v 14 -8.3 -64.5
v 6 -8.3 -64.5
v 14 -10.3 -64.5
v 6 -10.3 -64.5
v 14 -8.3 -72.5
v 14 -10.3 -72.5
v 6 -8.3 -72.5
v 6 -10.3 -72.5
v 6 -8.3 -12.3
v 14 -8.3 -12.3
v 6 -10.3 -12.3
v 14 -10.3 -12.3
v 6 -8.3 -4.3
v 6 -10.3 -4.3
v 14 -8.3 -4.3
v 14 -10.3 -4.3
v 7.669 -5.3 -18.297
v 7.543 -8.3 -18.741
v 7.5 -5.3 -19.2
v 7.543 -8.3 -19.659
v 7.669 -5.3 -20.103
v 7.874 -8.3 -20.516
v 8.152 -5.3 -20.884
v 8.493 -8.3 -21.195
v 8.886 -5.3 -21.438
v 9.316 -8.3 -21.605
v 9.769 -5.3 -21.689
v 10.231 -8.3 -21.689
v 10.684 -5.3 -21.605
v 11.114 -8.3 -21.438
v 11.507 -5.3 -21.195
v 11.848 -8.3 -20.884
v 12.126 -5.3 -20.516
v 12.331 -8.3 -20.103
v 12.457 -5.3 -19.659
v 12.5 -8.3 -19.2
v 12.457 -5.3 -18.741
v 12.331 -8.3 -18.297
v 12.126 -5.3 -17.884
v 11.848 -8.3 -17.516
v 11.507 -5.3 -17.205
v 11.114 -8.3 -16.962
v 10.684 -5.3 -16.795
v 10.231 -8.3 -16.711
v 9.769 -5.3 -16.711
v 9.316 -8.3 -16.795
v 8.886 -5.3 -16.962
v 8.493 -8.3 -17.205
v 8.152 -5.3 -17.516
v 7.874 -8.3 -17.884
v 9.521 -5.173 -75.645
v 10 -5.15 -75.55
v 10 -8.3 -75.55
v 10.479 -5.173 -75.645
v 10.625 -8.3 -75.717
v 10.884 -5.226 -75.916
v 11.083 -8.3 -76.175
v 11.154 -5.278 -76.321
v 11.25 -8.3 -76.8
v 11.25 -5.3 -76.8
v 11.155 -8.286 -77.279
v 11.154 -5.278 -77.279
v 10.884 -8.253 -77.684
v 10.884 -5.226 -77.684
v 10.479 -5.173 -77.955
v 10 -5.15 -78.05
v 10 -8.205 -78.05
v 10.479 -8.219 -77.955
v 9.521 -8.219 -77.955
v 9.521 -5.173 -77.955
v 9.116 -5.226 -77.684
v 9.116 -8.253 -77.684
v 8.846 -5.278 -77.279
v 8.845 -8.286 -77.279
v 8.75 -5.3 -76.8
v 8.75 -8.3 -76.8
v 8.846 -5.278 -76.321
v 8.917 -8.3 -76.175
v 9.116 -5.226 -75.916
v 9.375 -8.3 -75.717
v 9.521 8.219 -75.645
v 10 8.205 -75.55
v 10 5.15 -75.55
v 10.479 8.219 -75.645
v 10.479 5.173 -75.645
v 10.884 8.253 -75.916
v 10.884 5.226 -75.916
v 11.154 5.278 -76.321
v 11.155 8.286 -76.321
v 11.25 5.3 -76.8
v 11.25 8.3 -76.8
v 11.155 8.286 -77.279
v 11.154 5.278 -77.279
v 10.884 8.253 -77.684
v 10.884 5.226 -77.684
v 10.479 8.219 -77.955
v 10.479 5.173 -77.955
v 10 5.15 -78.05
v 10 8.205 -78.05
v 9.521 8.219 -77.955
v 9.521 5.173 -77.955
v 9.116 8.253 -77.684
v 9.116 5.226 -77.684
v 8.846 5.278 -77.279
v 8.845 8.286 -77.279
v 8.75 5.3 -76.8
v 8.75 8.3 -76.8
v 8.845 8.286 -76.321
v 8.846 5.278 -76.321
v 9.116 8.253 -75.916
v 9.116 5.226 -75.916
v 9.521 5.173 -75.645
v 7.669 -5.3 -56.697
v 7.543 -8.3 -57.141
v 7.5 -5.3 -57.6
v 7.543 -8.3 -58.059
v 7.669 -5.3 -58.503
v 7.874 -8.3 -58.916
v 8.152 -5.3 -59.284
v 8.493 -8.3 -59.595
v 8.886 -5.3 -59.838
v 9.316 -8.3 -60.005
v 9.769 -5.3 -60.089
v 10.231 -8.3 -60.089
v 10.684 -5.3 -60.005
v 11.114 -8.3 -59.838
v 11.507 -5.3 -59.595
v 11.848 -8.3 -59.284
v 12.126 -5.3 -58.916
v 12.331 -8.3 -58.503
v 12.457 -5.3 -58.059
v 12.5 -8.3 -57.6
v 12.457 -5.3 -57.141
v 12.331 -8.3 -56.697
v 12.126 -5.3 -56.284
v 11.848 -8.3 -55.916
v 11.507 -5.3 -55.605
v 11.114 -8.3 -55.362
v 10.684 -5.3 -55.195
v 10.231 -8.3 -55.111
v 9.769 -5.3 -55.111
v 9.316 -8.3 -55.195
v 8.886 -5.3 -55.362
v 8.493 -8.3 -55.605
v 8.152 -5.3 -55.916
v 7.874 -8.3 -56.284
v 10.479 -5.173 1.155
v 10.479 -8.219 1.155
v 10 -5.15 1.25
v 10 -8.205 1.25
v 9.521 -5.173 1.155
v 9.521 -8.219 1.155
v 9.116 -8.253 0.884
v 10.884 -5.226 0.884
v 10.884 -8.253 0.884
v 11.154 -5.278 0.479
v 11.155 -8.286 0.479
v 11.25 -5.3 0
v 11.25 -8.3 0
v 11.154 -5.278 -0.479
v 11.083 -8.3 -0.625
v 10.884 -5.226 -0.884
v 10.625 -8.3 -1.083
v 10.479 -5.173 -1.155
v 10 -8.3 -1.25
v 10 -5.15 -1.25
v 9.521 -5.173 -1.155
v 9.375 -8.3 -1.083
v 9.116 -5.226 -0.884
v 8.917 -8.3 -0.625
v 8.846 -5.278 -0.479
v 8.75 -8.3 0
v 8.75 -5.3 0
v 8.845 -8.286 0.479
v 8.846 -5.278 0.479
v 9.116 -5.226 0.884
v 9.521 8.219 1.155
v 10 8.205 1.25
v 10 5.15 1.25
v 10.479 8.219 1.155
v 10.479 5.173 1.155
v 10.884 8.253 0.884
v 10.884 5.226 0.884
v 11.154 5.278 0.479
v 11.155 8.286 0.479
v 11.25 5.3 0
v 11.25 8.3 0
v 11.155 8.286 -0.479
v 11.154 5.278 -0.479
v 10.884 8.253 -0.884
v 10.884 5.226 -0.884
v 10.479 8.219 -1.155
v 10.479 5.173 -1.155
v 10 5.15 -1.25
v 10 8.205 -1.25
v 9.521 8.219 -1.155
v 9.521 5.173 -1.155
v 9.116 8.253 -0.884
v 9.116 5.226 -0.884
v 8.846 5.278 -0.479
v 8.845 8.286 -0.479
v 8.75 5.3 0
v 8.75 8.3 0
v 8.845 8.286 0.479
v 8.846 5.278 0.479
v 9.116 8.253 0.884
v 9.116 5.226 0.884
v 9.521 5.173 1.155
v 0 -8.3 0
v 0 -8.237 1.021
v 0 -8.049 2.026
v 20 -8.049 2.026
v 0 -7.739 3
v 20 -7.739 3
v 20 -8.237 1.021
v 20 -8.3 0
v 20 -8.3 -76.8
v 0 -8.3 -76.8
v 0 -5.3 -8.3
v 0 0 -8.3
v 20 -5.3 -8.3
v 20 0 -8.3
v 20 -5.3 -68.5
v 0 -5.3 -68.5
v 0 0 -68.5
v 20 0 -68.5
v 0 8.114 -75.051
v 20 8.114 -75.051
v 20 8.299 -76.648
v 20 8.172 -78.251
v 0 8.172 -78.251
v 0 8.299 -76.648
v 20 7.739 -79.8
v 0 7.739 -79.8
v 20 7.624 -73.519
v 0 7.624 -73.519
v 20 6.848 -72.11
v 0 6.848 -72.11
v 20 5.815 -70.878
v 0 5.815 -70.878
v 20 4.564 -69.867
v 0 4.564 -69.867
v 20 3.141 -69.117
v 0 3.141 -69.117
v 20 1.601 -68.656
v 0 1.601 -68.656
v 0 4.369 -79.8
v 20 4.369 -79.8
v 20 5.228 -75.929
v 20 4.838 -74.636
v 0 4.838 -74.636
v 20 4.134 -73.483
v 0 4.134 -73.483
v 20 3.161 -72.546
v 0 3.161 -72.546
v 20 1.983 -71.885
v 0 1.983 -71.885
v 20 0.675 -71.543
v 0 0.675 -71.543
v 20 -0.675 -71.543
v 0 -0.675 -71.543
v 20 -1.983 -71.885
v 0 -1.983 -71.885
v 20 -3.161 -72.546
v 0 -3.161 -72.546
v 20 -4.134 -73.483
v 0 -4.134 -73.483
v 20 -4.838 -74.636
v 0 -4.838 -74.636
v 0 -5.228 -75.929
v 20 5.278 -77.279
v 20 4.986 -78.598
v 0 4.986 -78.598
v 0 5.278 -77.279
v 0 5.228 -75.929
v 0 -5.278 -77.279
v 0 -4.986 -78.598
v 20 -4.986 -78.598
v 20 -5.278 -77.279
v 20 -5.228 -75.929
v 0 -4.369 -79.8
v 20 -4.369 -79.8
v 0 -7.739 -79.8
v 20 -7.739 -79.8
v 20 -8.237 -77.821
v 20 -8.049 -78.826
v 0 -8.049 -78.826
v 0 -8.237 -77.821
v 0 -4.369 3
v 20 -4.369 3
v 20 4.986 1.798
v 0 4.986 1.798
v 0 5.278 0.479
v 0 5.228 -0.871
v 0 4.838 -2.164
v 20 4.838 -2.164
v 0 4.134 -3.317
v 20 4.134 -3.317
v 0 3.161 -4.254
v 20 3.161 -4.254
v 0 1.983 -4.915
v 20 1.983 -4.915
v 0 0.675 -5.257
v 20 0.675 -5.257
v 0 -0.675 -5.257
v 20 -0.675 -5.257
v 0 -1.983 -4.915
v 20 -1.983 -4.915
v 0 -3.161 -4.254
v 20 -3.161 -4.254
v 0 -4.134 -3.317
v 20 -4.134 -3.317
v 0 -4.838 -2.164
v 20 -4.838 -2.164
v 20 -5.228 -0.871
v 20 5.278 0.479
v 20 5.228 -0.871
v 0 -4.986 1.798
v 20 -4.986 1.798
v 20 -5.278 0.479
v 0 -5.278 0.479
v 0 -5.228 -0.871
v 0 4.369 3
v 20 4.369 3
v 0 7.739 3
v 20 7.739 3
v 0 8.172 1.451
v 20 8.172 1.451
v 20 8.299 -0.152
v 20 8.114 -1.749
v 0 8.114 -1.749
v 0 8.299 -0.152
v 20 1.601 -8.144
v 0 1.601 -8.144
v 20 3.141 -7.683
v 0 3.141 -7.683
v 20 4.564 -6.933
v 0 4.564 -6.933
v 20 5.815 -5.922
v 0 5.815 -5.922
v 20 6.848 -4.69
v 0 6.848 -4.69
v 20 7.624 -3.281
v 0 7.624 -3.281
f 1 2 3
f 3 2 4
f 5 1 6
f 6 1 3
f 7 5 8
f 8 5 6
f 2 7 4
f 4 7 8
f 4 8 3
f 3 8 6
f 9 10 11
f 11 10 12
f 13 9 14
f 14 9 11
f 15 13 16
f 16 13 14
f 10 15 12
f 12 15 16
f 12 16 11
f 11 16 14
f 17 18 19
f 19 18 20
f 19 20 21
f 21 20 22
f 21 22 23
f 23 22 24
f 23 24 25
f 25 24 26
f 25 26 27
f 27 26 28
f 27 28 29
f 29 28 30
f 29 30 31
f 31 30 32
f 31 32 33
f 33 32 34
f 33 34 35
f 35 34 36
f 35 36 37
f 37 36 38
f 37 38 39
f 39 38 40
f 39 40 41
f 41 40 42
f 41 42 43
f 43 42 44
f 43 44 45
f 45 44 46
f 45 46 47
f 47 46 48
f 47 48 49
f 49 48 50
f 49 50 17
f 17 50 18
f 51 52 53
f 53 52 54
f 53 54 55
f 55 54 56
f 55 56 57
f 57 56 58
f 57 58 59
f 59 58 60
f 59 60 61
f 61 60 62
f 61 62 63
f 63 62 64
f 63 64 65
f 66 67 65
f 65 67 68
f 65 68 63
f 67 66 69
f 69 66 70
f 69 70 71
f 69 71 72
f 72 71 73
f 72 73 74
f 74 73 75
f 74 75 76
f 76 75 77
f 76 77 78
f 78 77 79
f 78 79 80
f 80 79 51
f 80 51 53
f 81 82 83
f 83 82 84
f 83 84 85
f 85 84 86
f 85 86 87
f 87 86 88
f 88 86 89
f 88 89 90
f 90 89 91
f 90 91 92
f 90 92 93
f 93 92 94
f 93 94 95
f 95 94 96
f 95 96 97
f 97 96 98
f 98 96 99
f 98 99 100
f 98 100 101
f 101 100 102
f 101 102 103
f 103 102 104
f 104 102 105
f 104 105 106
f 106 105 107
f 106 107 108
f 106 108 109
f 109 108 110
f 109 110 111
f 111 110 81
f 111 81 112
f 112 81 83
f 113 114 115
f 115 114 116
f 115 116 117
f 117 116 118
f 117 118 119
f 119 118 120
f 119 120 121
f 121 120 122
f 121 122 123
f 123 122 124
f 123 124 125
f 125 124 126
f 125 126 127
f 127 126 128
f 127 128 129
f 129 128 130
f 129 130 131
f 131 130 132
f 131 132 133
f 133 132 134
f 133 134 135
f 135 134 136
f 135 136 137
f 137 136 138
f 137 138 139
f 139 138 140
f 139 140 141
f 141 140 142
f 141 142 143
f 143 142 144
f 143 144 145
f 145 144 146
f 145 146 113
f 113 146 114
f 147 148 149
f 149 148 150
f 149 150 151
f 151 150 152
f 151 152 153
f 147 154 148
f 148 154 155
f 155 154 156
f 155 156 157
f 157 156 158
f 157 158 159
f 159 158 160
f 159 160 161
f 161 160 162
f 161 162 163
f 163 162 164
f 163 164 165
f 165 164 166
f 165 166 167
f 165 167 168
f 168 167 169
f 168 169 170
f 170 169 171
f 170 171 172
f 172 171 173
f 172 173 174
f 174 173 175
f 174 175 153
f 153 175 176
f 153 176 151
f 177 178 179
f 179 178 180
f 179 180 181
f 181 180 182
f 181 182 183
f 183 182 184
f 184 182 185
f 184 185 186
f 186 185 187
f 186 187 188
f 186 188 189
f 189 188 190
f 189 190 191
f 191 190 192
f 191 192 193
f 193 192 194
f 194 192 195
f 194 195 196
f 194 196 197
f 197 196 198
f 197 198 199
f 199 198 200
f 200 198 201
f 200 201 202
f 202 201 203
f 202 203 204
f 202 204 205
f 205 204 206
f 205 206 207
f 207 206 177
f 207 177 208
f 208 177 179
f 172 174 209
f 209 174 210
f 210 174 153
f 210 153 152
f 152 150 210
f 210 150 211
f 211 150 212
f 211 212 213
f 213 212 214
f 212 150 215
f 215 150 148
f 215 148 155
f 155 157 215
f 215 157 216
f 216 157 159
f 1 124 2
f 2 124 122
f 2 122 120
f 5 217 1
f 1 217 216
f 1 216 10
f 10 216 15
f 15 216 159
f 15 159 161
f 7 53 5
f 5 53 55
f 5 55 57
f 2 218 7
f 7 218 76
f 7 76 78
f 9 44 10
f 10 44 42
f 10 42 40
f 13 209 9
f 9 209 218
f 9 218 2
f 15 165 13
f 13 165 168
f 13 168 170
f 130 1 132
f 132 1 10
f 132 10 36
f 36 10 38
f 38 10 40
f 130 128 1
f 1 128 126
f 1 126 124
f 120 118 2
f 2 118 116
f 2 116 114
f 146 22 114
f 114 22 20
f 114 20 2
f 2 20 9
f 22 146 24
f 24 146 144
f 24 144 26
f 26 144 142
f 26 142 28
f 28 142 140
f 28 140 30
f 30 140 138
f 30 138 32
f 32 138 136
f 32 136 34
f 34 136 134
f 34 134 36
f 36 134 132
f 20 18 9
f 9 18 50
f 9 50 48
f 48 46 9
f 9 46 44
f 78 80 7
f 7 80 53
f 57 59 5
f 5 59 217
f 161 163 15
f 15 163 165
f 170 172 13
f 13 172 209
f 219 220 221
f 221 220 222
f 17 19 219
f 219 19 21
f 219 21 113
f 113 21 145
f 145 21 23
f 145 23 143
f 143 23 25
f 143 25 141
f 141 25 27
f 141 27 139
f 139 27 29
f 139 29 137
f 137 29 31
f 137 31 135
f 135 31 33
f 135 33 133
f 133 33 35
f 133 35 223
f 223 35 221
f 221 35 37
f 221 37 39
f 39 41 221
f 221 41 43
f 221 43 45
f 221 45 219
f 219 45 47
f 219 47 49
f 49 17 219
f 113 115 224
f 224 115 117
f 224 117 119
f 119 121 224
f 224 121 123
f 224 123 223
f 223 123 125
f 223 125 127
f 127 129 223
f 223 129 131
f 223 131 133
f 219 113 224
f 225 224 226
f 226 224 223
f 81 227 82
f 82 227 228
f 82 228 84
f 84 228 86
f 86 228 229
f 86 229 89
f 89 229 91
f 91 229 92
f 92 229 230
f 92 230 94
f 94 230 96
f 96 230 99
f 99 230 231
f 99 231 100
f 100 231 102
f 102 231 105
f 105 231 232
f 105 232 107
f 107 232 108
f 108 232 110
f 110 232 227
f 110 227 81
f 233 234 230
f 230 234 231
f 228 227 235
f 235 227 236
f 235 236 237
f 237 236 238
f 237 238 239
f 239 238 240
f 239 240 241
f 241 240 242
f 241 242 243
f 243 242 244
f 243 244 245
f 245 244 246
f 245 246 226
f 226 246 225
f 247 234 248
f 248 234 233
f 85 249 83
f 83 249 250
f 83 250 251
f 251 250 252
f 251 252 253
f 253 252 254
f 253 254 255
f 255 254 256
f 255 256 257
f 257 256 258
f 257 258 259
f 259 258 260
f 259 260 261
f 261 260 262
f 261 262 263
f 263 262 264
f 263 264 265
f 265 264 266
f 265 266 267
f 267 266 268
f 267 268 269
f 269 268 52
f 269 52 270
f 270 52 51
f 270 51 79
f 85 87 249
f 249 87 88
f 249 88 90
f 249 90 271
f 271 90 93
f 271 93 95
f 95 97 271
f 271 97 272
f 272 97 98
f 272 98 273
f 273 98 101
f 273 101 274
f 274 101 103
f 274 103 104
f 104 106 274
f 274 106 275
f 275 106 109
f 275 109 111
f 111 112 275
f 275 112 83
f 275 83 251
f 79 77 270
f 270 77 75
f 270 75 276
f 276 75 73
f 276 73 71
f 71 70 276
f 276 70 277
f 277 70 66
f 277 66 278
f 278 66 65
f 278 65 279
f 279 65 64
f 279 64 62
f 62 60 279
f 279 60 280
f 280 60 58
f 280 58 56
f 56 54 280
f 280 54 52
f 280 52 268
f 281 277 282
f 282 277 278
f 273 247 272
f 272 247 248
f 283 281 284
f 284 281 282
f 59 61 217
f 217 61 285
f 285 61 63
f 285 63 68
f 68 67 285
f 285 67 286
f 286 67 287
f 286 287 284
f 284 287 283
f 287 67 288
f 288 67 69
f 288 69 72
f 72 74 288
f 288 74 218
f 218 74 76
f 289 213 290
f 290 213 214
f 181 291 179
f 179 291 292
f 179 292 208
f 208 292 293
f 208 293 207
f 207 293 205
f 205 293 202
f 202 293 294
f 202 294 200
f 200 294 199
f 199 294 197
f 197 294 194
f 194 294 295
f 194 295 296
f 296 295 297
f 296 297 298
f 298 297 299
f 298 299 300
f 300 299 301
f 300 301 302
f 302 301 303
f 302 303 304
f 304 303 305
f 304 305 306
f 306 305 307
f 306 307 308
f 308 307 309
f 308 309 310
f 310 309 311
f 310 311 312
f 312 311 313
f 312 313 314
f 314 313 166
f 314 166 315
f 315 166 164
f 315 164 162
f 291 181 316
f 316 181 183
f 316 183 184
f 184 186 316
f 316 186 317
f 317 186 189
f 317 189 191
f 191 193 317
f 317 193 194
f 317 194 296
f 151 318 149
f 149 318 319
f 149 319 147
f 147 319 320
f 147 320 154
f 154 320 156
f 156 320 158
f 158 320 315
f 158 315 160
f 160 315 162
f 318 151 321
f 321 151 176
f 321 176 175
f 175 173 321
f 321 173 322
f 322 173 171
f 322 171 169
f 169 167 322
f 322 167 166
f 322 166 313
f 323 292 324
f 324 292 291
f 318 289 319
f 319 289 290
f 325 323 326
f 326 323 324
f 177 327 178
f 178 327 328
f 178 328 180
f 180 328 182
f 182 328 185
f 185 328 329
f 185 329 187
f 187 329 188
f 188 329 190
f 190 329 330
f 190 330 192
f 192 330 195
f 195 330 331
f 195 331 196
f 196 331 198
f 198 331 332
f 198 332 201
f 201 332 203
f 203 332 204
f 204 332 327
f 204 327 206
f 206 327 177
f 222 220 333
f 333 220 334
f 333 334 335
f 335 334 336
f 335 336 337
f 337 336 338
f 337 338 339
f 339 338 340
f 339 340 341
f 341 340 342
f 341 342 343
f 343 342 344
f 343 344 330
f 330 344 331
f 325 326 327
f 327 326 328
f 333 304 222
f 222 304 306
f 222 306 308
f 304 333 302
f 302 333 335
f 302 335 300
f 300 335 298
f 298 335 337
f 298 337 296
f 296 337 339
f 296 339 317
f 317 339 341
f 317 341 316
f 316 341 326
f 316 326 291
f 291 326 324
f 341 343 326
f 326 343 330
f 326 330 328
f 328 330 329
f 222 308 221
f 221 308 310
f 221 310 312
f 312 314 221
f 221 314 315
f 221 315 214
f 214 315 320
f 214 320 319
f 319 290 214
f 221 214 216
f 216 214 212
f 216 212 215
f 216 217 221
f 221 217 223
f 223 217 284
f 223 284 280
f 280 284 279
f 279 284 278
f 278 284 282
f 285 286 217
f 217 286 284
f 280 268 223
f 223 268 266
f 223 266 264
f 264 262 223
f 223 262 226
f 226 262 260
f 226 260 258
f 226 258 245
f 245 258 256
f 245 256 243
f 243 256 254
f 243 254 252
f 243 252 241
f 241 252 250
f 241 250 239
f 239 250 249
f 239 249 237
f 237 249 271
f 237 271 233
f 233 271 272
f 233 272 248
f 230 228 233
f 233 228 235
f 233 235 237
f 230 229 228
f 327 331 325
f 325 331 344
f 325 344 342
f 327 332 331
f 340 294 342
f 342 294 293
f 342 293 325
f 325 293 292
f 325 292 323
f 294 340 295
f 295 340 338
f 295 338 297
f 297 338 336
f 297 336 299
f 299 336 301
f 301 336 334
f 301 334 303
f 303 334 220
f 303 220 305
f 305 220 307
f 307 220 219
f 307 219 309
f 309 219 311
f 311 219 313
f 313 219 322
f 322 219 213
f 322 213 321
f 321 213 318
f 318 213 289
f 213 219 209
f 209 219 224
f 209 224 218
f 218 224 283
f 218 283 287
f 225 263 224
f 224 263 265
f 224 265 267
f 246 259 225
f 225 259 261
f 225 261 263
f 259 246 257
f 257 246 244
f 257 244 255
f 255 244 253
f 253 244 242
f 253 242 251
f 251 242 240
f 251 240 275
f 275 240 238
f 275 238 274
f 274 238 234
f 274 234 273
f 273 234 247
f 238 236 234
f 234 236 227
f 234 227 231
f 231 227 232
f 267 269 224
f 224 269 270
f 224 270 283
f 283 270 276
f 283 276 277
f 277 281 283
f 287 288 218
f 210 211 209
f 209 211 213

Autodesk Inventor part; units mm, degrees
ref_plane "YZ Plane" through (0, 0, 0) normal (1, 0, 0) x (0, 1, 0)
ref_plane "XZ Plane" through (0, 0, 0) normal (0, 1, 0) x (-1, 0, 0)
sketch "스케치1" plane through (0, 0, 0) normal (1, 0, 0) x (0, 1, 0)
  circle A0 centre (0, 0) radius 5.3
  circle A1 centre (0, 0) radius 5
  line L0 (4, 3) -> (-4, 3)
  circle A2 centre (0, 0) radius 8.3
  line L1 (4, 3) -> (11.6093, 3)
  line L2 (-4, 3) -> (-10.334, 3)
  line L3 (11.6093, -38.4) -> (-10.334, -38.4) construction
  circle A3 centre (0, -76.8) radius 5.3
  circle A4 centre (0, -76.8) radius 5
  line L4 (4, -79.8) -> (-4, -79.8)
  circle A5 centre (0, -76.8) radius 8.3
  line L5 (4, -79.8) -> (11.6093, -79.8)
  line L6 (-4, -79.8) -> (-10.334, -79.8)
  line L7 (-8.3, 0) -> (-8.3, -76.8)
  line L8 (-5.3, 0) -> (-5.3, -76.8)
  line L9 (0, -8.3) -> (-5.3, -8.3)
  line L10 (0, -68.5) -> (-5.3, -68.5)
  point P0 (0, 3)
  point P1 (0, -79.8)
  point P2 (-4.3692, -79.8)
  point P3 (4.3692, -79.8)
  point P4 (7.7389, 3)
  point P5 (4.3692, 3)
  point P6 (-4.3692, 3)
  point P7 (-7.7389, 3)
  point P8 (-7.7389, -79.8)
  point P9 (7.7389, -79.8)
  dimension "d0" = 10.6
  dimension "d1" = 3
  dimension "d2" = 10
  dimension "d3" = 16.6
  dimension "d4" = 38.4
extrude "돌출1" add sketch "스케치1" along normal blind 20 contours L8 A2 L2 A0 | A0 L1 A2 L8 | L8 A5 L7 A2 | A2 L9 L8 | A5 L8 A3 L6 | L10 A5 L8 | A5 L5 A3 L8
ref_plane "작업 평면1" through (0, 0, 8.3) normal (0, 0, 1) x (1, 0, 0)
sketch "스케치3" plane through (0, -8.3, -76.8) normal (0, -1, 0) x (1, 0, 0)
  line L0 (0, 76.8) -> (0, 0) projected
  line L1 (0, 0) -> (20, 0) projected
  line L2 (20, 76.8) -> (20, 0) projected
  line L3 (0, 76.8) -> (20, 76.8) projected
  line L4 (0, 0) -> (0, -3) projected
  line L5 (0, -3) -> (20, -3) projected
  line L6 (20, 0) -> (20, -3) projected
  line L7 (0, 0) -> (20, 0) projected
  line L8 (0, 79.8) -> (0, 76.8) projected
  line L9 (0, 76.8) -> (20, 76.8) projected
  line L10 (20, 79.8) -> (20, 76.8) projected
  line L11 (0, 79.8) -> (20, 79.8) projected
  line L12 (20, 38.4) -> (0, 38.4) construction
  line L13 (0, 79.8) -> (20, 79.8) projected
  line L14 (10, 79.8) -> (10, -3) construction
  circle A0 centre (10, 19.2) radius 2.5
  line L15 (6, 12.3) -> (14, 12.3)
  line L16 (14, 12.3) -> (14, 4.3)
  line L17 (14, 4.3) -> (6, 4.3)
  line L18 (6, 4.3) -> (6, 12.3)
  line L19 (0, 8.3) -> (20, 8.3) projected
  line L20 (6, 12.3) -> (14, 4.3) construction
  line L21 (14, 12.3) -> (6, 4.3) construction
  circle A1 centre (10, 57.6) radius 2.5
  line L22 (6, 64.5) -> (14, 64.5)
  line L23 (14, 64.5) -> (14, 72.5)
  line L24 (14, 72.5) -> (6, 72.5)
  line L25 (6, 72.5) -> (6, 64.5)
  line L26 (0, 68.5) -> (20, 68.5)
  line L27 (6, 64.5) -> (14, 72.5) construction
  line L28 (14, 64.5) -> (6, 72.5) construction
  circle A2 centre (10, 0) radius 1.25
  circle A3 centre (10, 76.8) radius 1.25
  point P0 (10, 8.3)
  point P1 (10, 68.5)
  dimension "d10" = 38.4
  dimension "d11" = 10
  dimension "d12" = 5
  dimension "d13" = 19.2
  dimension "d14" = 8
  dimension "d15" = 8
  dimension "d20" = 2.5
extrude "돌출3" cut sketch "스케치3" against normal blind 20 contours A3 L3 | L3 A3 | A2 L1 | L1 A2 | A0 | A1
extrude "돌출4" add sketch "스케치3" along normal blind 2 contours L26 L23 L22 L25 | L25 L24 L23 L26 | L19 L16 L17 L18 | L18 L15 L16 L19
properties part number "pipe_holder_typeB"
